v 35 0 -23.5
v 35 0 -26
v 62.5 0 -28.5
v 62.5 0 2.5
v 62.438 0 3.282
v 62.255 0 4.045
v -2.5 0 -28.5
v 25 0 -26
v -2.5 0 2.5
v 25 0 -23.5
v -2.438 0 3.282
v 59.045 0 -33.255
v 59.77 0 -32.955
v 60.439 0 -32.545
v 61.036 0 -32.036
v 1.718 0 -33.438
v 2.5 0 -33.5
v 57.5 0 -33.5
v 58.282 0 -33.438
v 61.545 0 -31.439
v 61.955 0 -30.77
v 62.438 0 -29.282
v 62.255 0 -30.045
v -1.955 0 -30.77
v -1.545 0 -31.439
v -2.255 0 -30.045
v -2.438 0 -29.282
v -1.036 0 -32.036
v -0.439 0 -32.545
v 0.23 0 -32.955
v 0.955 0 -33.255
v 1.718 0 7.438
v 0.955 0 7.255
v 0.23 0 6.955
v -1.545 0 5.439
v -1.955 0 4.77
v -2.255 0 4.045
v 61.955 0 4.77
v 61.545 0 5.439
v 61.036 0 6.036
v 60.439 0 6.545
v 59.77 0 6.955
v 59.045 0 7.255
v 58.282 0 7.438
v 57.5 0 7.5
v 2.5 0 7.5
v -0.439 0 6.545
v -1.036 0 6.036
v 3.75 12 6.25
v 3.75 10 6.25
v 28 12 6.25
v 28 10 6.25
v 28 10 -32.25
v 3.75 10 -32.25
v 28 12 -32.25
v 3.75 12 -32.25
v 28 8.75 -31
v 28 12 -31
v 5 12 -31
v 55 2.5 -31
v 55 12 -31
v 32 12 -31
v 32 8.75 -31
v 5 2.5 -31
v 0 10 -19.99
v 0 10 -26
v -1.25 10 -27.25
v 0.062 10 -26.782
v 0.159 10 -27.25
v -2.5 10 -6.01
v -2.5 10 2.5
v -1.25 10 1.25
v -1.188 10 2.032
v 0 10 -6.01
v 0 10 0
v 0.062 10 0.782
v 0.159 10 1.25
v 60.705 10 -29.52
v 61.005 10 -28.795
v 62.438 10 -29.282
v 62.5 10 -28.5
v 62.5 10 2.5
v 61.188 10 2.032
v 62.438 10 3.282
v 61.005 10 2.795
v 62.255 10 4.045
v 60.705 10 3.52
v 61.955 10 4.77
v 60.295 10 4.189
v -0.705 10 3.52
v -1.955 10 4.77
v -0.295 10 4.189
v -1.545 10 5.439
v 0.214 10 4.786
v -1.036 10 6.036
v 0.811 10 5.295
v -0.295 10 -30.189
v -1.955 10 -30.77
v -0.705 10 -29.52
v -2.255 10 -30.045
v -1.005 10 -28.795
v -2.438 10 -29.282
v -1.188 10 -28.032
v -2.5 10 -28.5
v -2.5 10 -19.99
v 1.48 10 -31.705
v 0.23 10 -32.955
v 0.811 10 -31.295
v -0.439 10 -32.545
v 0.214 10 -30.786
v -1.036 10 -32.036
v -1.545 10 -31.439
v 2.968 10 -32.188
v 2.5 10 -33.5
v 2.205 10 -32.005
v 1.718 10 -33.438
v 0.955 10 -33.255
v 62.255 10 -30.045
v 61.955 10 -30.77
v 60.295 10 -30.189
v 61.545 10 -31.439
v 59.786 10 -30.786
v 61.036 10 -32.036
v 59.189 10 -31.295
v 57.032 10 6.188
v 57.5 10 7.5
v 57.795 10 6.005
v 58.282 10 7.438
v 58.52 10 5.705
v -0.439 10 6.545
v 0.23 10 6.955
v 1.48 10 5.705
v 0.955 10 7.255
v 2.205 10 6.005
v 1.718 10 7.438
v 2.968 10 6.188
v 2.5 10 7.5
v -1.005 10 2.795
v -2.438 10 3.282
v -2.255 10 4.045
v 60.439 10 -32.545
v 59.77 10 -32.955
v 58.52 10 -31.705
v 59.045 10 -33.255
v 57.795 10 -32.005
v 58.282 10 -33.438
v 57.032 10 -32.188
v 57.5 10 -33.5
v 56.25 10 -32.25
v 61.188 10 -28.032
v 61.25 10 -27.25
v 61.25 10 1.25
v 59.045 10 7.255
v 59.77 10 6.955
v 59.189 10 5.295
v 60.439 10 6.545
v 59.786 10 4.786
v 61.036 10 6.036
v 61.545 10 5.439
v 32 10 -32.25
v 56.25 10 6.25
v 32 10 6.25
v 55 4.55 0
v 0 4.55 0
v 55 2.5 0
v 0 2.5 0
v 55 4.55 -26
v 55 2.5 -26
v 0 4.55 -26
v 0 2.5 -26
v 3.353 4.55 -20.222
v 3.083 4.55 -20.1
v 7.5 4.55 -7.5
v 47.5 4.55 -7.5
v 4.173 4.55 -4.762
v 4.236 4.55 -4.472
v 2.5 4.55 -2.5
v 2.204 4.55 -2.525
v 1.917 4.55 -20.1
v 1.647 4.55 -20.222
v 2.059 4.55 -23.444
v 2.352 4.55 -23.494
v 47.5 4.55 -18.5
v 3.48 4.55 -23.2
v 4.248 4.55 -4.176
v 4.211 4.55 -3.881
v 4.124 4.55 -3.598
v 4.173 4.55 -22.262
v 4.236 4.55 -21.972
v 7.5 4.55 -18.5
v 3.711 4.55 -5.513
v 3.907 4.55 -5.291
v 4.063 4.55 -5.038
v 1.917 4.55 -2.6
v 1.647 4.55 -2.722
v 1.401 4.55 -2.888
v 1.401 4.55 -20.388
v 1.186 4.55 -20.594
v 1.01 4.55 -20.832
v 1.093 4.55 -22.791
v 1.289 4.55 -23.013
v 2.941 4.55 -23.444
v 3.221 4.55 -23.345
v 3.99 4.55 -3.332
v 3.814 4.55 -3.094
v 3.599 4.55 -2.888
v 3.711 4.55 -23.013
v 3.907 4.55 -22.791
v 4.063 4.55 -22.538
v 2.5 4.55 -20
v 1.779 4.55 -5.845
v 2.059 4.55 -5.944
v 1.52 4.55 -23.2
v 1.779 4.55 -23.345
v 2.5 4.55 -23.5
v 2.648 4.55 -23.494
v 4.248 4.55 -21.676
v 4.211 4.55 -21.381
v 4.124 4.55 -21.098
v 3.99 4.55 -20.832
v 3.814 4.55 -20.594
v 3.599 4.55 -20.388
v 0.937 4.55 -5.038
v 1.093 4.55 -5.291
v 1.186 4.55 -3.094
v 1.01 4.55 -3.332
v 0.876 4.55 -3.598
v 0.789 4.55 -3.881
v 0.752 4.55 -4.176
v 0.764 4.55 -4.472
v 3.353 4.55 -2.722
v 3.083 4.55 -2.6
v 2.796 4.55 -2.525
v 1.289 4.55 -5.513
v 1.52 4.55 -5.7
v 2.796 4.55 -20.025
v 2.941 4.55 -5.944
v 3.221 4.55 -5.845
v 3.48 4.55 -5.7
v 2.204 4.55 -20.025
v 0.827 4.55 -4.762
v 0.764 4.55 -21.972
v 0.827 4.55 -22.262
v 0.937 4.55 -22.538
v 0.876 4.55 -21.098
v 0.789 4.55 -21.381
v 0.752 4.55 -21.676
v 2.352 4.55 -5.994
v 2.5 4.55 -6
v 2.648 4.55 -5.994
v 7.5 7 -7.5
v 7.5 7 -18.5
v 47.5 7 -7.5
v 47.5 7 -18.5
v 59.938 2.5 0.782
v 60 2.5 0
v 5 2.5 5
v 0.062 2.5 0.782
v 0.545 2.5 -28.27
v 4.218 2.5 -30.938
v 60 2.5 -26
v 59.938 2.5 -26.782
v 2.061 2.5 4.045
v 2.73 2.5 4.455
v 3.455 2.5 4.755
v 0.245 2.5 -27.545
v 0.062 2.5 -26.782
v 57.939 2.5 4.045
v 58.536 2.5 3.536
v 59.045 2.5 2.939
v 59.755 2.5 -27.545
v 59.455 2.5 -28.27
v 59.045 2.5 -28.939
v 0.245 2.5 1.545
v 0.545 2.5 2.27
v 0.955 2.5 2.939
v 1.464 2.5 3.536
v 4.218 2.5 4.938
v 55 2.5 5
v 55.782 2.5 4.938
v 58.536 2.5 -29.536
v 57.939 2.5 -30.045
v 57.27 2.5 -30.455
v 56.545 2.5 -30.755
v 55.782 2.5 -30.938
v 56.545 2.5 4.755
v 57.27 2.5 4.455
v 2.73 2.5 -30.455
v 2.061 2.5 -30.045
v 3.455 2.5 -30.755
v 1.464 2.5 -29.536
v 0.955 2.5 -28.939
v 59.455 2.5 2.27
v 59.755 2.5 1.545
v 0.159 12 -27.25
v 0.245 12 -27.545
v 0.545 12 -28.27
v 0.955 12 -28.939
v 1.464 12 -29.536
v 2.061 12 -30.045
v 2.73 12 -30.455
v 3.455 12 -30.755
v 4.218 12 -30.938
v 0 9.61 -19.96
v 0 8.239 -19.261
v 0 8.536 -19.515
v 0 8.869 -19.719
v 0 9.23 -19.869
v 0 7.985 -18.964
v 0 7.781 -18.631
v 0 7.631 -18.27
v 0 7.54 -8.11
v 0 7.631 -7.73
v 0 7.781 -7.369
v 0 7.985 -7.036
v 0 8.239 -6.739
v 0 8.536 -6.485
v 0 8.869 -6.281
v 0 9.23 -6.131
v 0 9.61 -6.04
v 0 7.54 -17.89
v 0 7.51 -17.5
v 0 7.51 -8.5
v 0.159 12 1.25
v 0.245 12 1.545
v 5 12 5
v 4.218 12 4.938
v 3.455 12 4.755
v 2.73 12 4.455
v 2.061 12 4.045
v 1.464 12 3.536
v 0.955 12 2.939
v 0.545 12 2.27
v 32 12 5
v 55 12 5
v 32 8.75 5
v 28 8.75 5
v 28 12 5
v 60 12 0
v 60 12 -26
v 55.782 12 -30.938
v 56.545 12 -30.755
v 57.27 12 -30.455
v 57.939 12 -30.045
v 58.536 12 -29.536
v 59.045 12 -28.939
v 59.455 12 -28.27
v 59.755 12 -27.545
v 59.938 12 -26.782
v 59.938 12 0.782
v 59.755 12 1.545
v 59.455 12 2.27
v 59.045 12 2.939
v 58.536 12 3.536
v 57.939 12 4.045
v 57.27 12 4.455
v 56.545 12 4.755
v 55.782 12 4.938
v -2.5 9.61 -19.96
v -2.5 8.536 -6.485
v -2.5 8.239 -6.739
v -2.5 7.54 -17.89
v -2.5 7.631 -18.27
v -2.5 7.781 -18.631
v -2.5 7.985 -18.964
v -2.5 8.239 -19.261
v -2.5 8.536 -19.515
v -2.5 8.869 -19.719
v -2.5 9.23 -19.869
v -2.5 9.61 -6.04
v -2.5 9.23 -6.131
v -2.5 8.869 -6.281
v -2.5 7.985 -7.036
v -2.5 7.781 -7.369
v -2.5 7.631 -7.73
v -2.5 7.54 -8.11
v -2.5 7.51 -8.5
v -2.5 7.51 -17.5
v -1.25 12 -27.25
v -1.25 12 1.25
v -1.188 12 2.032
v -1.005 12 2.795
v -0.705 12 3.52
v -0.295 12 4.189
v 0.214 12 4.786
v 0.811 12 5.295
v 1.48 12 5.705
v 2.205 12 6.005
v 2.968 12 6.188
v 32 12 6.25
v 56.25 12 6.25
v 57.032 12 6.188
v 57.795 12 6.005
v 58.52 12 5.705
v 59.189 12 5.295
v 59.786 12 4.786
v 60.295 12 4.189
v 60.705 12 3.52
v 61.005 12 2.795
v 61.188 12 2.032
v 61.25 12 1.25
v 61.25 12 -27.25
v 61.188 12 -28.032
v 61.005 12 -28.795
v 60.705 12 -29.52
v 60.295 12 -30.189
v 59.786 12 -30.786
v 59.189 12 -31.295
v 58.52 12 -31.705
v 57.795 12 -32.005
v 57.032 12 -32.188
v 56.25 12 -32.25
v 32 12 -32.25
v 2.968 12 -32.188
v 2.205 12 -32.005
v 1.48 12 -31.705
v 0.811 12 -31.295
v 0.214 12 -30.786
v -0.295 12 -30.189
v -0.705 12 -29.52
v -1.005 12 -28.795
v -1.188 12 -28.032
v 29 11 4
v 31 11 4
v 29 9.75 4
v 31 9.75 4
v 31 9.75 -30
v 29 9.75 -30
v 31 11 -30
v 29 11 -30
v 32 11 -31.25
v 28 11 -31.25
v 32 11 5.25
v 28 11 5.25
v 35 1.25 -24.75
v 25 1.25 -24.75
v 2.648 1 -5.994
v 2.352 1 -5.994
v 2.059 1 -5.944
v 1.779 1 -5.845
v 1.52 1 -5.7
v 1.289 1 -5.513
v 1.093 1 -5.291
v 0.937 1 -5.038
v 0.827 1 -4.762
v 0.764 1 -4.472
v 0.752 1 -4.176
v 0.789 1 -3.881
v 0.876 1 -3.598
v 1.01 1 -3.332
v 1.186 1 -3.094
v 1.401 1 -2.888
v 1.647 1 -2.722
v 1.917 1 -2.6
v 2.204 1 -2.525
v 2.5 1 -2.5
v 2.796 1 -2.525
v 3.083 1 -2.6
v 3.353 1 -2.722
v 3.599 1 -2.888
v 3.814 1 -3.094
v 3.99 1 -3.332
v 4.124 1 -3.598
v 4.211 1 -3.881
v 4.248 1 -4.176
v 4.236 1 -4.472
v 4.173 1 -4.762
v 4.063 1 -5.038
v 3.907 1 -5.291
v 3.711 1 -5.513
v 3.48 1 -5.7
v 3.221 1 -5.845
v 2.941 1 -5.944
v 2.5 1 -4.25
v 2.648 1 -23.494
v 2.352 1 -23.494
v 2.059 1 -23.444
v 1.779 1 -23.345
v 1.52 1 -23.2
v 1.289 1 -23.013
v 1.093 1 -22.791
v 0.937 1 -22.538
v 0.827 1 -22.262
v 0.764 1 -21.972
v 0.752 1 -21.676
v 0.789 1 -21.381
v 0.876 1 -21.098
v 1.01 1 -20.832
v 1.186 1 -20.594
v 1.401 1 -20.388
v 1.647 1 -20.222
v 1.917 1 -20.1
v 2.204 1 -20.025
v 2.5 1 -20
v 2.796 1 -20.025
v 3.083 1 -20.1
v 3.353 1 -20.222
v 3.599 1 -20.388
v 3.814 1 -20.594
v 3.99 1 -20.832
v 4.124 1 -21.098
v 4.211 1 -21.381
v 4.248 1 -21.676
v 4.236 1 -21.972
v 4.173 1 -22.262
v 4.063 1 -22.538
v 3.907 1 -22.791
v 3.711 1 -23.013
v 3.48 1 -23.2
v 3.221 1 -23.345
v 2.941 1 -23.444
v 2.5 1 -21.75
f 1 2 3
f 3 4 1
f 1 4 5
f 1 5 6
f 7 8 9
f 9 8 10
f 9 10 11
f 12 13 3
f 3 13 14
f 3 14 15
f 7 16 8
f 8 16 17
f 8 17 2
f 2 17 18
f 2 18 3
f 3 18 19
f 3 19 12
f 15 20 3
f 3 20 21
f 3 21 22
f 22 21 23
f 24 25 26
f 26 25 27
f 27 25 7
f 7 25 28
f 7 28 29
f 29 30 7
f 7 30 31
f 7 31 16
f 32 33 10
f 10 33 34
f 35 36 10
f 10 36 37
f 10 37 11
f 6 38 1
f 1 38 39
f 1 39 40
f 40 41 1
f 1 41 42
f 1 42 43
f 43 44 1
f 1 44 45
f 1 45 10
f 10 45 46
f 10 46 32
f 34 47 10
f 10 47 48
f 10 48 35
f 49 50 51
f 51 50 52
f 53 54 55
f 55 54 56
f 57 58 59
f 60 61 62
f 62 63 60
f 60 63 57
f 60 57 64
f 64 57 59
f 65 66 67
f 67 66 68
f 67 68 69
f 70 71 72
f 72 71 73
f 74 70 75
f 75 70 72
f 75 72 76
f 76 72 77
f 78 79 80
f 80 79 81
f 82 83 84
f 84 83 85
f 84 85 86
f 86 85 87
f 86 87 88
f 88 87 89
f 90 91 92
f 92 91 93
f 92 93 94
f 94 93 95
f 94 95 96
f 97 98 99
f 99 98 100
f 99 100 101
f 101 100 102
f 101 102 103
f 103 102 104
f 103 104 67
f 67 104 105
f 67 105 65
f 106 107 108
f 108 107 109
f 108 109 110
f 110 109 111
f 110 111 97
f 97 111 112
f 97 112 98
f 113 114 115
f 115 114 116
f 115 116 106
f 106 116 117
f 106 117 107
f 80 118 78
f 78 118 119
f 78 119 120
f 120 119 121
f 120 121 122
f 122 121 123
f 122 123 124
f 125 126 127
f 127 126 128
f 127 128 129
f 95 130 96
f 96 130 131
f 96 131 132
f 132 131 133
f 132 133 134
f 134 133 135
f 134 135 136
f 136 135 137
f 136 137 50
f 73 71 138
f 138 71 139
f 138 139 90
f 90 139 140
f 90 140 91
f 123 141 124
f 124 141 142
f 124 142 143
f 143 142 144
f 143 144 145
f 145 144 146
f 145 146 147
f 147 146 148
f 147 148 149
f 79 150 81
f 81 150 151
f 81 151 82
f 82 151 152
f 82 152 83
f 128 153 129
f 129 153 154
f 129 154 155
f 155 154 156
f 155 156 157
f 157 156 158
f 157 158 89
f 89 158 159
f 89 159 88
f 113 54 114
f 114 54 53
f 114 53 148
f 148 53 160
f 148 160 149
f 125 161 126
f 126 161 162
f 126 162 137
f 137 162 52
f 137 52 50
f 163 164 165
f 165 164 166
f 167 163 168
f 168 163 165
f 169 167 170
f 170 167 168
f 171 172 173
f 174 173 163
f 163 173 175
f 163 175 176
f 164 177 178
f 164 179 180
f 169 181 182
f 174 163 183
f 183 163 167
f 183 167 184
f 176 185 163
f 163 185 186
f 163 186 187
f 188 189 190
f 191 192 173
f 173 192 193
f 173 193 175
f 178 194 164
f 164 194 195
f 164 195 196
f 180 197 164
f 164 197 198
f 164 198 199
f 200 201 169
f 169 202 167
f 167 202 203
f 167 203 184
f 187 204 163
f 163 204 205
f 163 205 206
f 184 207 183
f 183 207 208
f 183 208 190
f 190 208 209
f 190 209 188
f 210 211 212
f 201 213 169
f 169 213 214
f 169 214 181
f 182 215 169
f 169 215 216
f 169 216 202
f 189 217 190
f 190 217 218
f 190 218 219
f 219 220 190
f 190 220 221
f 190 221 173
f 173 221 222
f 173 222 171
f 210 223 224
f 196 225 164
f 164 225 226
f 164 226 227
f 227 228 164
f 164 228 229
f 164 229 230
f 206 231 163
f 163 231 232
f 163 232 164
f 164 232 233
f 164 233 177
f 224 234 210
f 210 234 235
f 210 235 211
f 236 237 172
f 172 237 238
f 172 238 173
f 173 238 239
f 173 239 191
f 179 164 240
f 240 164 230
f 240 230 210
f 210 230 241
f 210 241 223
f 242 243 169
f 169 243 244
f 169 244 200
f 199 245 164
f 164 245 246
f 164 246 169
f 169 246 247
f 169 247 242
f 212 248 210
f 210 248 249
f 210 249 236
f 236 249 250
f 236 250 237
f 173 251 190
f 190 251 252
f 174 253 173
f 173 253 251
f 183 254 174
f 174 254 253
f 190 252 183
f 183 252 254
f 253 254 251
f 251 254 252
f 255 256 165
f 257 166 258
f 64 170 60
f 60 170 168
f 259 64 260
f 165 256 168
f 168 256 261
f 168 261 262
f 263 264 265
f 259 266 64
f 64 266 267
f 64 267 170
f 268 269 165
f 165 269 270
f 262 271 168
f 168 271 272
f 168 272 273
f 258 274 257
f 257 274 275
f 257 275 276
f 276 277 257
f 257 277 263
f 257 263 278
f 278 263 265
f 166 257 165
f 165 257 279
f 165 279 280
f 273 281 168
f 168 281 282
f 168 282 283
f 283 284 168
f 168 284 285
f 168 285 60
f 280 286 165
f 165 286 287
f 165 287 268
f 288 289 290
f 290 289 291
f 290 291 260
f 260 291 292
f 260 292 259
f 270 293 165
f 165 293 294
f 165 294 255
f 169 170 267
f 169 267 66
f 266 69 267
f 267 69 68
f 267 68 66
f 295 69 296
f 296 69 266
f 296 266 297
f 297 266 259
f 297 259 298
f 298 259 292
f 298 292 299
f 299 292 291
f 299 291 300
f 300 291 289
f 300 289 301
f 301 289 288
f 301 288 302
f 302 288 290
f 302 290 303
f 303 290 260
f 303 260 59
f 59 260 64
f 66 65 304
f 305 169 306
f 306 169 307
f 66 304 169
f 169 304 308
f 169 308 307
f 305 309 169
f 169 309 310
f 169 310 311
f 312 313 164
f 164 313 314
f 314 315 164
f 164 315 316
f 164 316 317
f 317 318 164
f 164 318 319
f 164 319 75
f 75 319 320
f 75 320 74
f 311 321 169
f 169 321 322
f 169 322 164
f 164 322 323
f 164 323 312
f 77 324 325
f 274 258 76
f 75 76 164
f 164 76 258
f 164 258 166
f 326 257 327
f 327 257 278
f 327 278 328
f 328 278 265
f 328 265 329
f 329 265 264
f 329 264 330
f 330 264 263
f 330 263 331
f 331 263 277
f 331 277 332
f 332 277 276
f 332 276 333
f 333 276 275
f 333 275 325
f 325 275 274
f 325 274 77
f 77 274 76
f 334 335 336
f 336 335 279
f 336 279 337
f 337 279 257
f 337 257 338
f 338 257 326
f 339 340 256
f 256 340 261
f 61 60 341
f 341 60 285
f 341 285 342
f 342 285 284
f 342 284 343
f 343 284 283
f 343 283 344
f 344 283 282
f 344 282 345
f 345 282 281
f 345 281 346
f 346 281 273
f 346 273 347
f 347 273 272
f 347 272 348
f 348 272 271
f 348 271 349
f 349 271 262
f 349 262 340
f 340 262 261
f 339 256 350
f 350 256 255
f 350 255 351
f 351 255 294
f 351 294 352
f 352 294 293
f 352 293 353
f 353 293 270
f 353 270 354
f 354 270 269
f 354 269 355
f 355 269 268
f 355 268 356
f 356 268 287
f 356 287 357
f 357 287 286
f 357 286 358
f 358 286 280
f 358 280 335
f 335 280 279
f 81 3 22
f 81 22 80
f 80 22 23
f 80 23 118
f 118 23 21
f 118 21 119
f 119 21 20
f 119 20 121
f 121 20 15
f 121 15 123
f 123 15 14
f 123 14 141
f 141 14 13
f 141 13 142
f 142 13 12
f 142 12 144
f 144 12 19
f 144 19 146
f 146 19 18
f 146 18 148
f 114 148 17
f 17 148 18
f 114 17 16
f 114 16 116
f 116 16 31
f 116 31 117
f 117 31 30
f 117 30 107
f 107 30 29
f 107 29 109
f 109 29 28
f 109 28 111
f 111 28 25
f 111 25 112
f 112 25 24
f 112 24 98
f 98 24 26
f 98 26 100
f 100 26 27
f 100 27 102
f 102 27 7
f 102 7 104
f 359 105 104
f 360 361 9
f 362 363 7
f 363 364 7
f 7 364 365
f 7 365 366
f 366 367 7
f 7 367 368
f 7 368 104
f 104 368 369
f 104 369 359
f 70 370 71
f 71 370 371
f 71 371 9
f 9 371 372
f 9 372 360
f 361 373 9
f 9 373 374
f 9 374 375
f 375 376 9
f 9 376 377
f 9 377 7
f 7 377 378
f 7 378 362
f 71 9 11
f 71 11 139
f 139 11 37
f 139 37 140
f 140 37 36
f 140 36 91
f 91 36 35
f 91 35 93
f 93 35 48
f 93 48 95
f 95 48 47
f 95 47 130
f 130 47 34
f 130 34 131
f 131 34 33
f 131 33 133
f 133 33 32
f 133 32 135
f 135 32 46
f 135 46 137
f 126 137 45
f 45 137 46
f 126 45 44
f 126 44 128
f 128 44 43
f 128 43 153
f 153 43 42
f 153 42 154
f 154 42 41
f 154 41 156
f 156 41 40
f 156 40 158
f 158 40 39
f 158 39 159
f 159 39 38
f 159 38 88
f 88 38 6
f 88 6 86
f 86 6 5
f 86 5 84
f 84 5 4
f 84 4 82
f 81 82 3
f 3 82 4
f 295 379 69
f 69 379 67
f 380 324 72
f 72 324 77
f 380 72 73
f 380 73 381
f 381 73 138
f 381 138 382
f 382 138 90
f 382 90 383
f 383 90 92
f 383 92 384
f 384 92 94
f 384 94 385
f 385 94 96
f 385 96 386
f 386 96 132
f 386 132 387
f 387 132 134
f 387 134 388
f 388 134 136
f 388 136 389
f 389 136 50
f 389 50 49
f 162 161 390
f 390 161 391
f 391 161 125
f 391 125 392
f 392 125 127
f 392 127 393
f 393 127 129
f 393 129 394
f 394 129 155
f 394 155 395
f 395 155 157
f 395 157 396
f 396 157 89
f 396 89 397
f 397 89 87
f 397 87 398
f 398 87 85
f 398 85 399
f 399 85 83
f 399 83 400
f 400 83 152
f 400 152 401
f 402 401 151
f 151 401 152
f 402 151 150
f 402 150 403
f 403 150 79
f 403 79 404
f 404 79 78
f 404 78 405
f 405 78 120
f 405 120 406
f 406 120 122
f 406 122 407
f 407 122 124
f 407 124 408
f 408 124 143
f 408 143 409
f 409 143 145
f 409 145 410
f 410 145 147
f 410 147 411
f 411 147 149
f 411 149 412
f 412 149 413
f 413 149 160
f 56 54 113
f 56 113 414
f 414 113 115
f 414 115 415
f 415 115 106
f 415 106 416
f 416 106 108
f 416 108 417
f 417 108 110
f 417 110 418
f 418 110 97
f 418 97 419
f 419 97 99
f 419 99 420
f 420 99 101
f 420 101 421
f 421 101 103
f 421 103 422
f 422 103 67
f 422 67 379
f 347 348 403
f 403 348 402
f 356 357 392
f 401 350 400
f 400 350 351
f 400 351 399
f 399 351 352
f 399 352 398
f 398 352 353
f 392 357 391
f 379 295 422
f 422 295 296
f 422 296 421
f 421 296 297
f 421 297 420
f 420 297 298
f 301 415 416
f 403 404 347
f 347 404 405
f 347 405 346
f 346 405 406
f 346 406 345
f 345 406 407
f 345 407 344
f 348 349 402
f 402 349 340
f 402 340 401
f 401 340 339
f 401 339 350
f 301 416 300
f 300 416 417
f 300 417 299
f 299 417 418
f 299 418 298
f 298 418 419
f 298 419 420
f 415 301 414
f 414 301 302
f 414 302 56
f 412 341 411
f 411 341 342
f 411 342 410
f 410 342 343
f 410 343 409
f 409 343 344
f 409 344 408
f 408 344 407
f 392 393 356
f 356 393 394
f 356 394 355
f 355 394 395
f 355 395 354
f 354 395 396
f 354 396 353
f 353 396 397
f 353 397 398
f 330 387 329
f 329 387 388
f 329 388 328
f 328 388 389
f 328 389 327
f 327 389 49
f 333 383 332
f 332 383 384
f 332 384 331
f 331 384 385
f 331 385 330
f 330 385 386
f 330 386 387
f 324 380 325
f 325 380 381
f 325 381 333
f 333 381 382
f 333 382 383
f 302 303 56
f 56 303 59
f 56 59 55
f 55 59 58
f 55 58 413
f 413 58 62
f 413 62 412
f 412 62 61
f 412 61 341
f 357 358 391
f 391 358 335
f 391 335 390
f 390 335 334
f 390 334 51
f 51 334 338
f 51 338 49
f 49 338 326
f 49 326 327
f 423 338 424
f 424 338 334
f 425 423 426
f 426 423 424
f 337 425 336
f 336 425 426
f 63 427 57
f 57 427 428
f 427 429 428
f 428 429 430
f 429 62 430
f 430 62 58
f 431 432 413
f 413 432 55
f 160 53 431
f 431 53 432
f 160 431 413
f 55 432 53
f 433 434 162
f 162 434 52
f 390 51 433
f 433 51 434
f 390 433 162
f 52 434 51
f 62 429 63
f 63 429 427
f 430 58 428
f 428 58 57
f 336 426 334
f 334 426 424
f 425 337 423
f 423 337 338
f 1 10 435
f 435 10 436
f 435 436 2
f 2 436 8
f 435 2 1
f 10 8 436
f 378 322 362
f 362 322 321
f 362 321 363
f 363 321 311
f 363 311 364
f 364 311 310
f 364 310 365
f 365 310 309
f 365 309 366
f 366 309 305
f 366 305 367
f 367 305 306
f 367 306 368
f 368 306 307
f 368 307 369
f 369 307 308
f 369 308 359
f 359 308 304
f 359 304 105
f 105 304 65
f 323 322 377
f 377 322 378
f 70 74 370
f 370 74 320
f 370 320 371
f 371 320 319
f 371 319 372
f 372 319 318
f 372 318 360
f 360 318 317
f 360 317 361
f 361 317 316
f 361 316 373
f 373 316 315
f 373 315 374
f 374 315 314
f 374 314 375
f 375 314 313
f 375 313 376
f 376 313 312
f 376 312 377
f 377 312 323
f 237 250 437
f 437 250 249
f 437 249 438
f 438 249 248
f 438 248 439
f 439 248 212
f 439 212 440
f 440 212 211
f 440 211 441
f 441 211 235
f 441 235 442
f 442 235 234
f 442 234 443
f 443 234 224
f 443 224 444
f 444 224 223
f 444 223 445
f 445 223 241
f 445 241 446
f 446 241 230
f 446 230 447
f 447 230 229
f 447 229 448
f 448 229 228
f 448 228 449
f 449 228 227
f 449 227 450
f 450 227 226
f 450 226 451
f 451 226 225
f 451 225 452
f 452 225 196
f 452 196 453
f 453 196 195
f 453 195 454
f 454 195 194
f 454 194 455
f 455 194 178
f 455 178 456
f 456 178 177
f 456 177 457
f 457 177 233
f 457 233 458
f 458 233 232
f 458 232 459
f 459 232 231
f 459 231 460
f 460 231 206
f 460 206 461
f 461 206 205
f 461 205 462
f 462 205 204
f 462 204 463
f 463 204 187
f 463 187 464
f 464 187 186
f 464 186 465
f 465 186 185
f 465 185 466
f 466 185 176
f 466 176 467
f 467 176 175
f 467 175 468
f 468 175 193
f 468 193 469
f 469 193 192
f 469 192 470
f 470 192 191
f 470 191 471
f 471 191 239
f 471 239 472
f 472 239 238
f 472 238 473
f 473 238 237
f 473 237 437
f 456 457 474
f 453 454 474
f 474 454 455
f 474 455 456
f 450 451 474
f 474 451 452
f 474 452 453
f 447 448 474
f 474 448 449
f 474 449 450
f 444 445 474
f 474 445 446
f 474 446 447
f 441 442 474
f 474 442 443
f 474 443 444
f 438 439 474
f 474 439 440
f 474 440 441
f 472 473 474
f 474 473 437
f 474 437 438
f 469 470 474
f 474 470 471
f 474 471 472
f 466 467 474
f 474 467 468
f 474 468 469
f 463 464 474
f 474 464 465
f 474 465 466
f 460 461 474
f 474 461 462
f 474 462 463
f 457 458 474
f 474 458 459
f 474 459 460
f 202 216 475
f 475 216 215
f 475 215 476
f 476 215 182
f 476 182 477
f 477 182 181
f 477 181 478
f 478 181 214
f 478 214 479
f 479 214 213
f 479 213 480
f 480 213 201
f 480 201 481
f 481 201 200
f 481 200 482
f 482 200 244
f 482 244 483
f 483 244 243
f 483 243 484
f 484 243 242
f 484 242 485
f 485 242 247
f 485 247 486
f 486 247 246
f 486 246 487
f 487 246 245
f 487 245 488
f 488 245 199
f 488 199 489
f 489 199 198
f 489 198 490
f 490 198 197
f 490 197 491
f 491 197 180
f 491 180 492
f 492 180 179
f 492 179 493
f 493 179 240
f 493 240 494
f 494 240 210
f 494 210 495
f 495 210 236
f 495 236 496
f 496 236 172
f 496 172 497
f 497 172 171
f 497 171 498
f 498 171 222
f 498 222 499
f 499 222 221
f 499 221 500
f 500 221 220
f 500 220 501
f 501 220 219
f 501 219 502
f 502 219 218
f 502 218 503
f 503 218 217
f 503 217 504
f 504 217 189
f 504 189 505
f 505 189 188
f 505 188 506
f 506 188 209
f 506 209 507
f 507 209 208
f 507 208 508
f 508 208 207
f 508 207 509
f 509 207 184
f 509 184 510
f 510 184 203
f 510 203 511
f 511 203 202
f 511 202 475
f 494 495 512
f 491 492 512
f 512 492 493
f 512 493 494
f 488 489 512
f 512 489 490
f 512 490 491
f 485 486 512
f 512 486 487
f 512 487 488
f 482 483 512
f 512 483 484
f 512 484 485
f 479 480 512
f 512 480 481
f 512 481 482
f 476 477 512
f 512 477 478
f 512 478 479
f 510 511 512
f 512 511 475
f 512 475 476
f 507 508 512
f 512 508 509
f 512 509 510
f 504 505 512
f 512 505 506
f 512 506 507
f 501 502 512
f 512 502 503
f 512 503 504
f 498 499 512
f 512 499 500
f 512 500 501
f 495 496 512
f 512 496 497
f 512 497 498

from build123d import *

# Parameters (mm, degrees)
SKETCH2_W                 = 55
SKETCH2_H                 = 26
BOSS_EXTRUDE3_DEPTH       = 4.55
SKETCH4_W                 = 40
SKETCH4_H                 = 11
BOSS_EXTRUDE5_DEPTH       = 7
BOSS_EXTRUDE6_DEPTH       = 2.5
BOSS_EXTRUDE7_DEPTH       = 10
BOSS_EXTRUDE9_DEPTH       = 2
BOSS_EXTRUDE10_DEPTH      = 2
BOSS_EXTRUDE10_DEPTH_BACK = 2
CUT_EXTRUDE2_DEPTH        = 2
CUT_EXTRUDE2_DEPTH_BACK   = 2
CUT_EXTRUDE3_DEPTH        = 4
CUT_EXTRUDE4_DEPTH        = 5
CUT_EXTRUDE4_DEPTH_BACK   = 5
CUT_EXTRUDE6_DEPTH        = 10
SKETCH14_R                = 1.75
CUT_EXTRUDE7_DEPTH        = 4


with BuildPart() as part:
    # Sketch2 → Boss-Extrude3 (new body)
    with BuildSketch(Plane(origin=(0, 0, 0), x_dir=(1, 0, 0), z_dir=(0, 1, 0))):
        with Locations((27.5, 13)):
            Rectangle(SKETCH2_W, SKETCH2_H)
    extrude(amount=BOSS_EXTRUDE3_DEPTH)

    # Sketch4 → Boss-Extrude5 (add)
    with BuildSketch(Plane(origin=(0, 0, 0), x_dir=(1, 0, 0), z_dir=(0, 1, 0))):
        with Locations((27.5, 13)):
            Rectangle(SKETCH4_W, SKETCH4_H)
    extrude(amount=BOSS_EXTRUDE5_DEPTH)

    # Sketch5 → Boss-Extrude6 (add)
    with BuildSketch(Plane(origin=(0, 0, 0), x_dir=(1, 0, 0), z_dir=(0, 1, 0))):
        with BuildLine():
            Line((5, 31), (55, 31))
            ThreePointArc((55, 31), (58.535533906, 29.535533906), (60, 26))
            Line((60, 26), (60, 0))
            ThreePointArc((60, 0), (58.535533906, -3.535533906), (55, -5))
            Line((55, -5), (5, -5))
            ThreePointArc((5, -5), (1.464466094, -3.535533906), (0, 0))
            Line((0, 0), (0, 26))
            ThreePointArc((0, 26), (1.464466094, 29.535533906), (5, 31))
        make_face()
    extrude(amount=BOSS_EXTRUDE6_DEPTH)

    # Sketch6 → Boss-Extrude7 (add)
    with BuildSketch(Plane(origin=(0, 0, 0), x_dir=(1, 0, 0), z_dir=(0, 1, 0))):
        with BuildLine():
            Line((2.5, 33.5), (57.5, 33.5))
            ThreePointArc((57.5, 33.5), (61.035533906, 32.035533906), (62.5, 28.5))
            Line((62.5, 28.5), (62.5, -2.5))
            ThreePointArc((62.5, -2.5), (61.035533906, -6.035533906), (57.5, -7.5))
            Line((57.5, -7.5), (2.5, -7.5))
            ThreePointArc((2.5, -7.5), (-1.035533906, -6.035533906), (-2.5, -2.5))
            Line((-2.5, -2.5), (-2.5, 28.5))
            ThreePointArc((-2.5, 28.5), (-1.035533906, 32.035533906), (2.5, 33.5))
        make_face()
        with BuildLine():
            Line((5, 31), (55, 31))
            ThreePointArc((55, 31), (58.535533906, 29.535533906), (60, 26))
            Line((60, 26), (60, 0))
            ThreePointArc((60, 0), (58.535533906, -3.535533906), (55, -5))
            Line((55, -5), (5, -5))
            ThreePointArc((5, -5), (1.464466094, -3.535533906), (0, 0))
            Line((0, 0), (0, 26))
            ThreePointArc((0, 26), (1.464466094, 29.535533906), (5, 31))
        make_face(mode=Mode.SUBTRACT)
    extrude(amount=BOSS_EXTRUDE7_DEPTH)

    # Sketch8 → Boss-Extrude9 (add)
    with BuildSketch(Plane(origin=(0, 10, 0), x_dir=(1, 0, 0), z_dir=(0, 1, 0))):
        with BuildLine():
            Line((56.25, 32.25), (3.75, 32.25))
            ThreePointArc((3.75, 32.25), (0.214466094, 30.785533906), (-1.25, 27.25))
            Line((-1.25, 27.25), (0.158770817, 27.25))
            ThreePointArc((0.158770817, 27.25), (1.938137822, 29.952847075), (5, 31))
            Line((5, 31), (55, 31))
            ThreePointArc((55, 31), (58.535533906, 29.535533906), (60, 26))
            Line((60, 26), (60, 0))
            ThreePointArc((60, 0), (58.535533906, -3.535533906), (55, -5))
            Line((55, -5), (5, -5))
            ThreePointArc((5, -5), (1.938137822, -3.952847075), (0.158770817, -1.25))
            Line((0.158770817, -1.25), (-1.25, -1.25))
            ThreePointArc((-1.25, -1.25), (0.214466094, -4.785533906), (3.75, -6.25))
            Line((3.75, -6.25), (56.25, -6.25))
            ThreePointArc((56.25, -6.25), (59.785533906, -4.785533906), (61.25, -1.25))
            Line((61.25, -1.25), (61.25, 27.25))
            ThreePointArc((61.25, 27.25), (59.785533906, 30.785533906), (56.25, 32.25))
        make_face()
    extrude(amount=BOSS_EXTRUDE9_DEPTH)

    # Sketch9 → Boss-Extrude10 (add, two sides: drawn at the far end of the back side and taken through both)
    with BuildSketch(Plane(origin=(30, 0, 0), x_dir=(0, 0, -1), z_dir=(1, 0, 0)).offset(-BOSS_EXTRUDE10_DEPTH_BACK)):
        Polygon((-5, 12), (-4, 11), (-4, 9.75), (-5, 8.75), align=None)
        Polygon((31, 12), (30, 11), (30, 9.75), (31, 8.75), align=None)
    extrude(amount=BOSS_EXTRUDE10_DEPTH + BOSS_EXTRUDE10_DEPTH_BACK)

    # Sketch10 → Cut-Extrude2 (cut, two sides: drawn at the far end of the back side and taken through both)
    with BuildSketch(Plane(origin=(30, 0, 0), x_dir=(0, 0, -1), z_dir=(1, 0, 0)).offset(-CUT_EXTRUDE2_DEPTH_BACK)):
        Polygon((-6.25, 12), (-5.249964226, 10.999964226), (-6.25, 10), align=None)
        Polygon((32.25, 12), (31.25, 11), (32.25, 10), align=None)
    extrude(amount=CUT_EXTRUDE2_DEPTH + CUT_EXTRUDE2_DEPTH_BACK, mode=Mode.SUBTRACT)

    # Sketch11 → Cut-Extrude3 (cut)
    with BuildSketch(Plane(origin=(0, 12, 0), x_dir=(1, 0, 0), z_dir=(0, 1, 0))):
        Polygon((32, 31), (32, 30), (31, 30), align=None)
        Polygon((28, 31), (28, 30), (29, 30), align=None)
        Polygon((28, -5), (28, -4), (29, -4), align=None)
        Polygon((32, -5), (32, -4), (31, -4), align=None)
    extrude(amount=-CUT_EXTRUDE3_DEPTH, mode=Mode.SUBTRACT)

    # Sketch12 → Cut-Extrude4 (cut, two sides: drawn at the far end of the back side and taken through both)
    with BuildSketch(Plane(origin=(30, 0, 0), x_dir=(0, 0, -1), z_dir=(1, 0, 0)).offset(-CUT_EXTRUDE4_DEPTH_BACK)):
        Polygon((23.5, 0), (26, 0), (24.75, 1.25), align=None)
    extrude(amount=CUT_EXTRUDE4_DEPTH + CUT_EXTRUDE4_DEPTH_BACK, mode=Mode.SUBTRACT)

    # Sketch7 → Cut-Extrude6 (cut)
    with BuildSketch(Plane(origin=(0, 0, 0), x_dir=(0, 0, -1), z_dir=(1, 0, 0))):
        with BuildLine():
            Line((13, 10), (19.990431296, 10))
            ThreePointArc((19.990431296, 10), (19.261010337, 11.760977972), (17.500032365, 12.490398932))
            Line((17.500032365, 12.490398932), (8.499967635, 12.490398932))
            ThreePointArc((8.499967635, 12.490398932), (6.738989663, 11.760977972), (6.009568704, 10))
            Line((6.009568704, 10), (13, 10))
        make_face()
        with BuildLine():
            ThreePointArc((17.500032365, 7.509601068), (19.261010337, 8.239022028), (19.990431296, 10))
            Line((19.990431296, 10), (13, 10))
            Line((13, 10), (6.009568704, 10))
            ThreePointArc((6.009568704, 10), (6.738989663, 8.239022028), (8.499967635, 7.509601068))
            Line((8.499967635, 7.509601068), (17.500032365, 7.509601068))
        make_face()
    extrude(amount=-CUT_EXTRUDE6_DEPTH, mode=Mode.SUBTRACT)

    # Sketch14 → Cut-Extrude7 (cut)
    with BuildSketch(Plane(origin=(0, 5, 0), x_dir=(1, 0, 0), z_dir=(0, 1, 0))):
        with Locations(Location((2.5, 21.75, 0), (0, 0, 270))):
            Circle(SKETCH14_R)
        with Locations(Location((2.5, 4.25, 0), (0, 0, 270))):
            Circle(SKETCH14_R)
    extrude(amount=-CUT_EXTRUDE7_DEPTH, mode=Mode.SUBTRACT)


solid = part.part
